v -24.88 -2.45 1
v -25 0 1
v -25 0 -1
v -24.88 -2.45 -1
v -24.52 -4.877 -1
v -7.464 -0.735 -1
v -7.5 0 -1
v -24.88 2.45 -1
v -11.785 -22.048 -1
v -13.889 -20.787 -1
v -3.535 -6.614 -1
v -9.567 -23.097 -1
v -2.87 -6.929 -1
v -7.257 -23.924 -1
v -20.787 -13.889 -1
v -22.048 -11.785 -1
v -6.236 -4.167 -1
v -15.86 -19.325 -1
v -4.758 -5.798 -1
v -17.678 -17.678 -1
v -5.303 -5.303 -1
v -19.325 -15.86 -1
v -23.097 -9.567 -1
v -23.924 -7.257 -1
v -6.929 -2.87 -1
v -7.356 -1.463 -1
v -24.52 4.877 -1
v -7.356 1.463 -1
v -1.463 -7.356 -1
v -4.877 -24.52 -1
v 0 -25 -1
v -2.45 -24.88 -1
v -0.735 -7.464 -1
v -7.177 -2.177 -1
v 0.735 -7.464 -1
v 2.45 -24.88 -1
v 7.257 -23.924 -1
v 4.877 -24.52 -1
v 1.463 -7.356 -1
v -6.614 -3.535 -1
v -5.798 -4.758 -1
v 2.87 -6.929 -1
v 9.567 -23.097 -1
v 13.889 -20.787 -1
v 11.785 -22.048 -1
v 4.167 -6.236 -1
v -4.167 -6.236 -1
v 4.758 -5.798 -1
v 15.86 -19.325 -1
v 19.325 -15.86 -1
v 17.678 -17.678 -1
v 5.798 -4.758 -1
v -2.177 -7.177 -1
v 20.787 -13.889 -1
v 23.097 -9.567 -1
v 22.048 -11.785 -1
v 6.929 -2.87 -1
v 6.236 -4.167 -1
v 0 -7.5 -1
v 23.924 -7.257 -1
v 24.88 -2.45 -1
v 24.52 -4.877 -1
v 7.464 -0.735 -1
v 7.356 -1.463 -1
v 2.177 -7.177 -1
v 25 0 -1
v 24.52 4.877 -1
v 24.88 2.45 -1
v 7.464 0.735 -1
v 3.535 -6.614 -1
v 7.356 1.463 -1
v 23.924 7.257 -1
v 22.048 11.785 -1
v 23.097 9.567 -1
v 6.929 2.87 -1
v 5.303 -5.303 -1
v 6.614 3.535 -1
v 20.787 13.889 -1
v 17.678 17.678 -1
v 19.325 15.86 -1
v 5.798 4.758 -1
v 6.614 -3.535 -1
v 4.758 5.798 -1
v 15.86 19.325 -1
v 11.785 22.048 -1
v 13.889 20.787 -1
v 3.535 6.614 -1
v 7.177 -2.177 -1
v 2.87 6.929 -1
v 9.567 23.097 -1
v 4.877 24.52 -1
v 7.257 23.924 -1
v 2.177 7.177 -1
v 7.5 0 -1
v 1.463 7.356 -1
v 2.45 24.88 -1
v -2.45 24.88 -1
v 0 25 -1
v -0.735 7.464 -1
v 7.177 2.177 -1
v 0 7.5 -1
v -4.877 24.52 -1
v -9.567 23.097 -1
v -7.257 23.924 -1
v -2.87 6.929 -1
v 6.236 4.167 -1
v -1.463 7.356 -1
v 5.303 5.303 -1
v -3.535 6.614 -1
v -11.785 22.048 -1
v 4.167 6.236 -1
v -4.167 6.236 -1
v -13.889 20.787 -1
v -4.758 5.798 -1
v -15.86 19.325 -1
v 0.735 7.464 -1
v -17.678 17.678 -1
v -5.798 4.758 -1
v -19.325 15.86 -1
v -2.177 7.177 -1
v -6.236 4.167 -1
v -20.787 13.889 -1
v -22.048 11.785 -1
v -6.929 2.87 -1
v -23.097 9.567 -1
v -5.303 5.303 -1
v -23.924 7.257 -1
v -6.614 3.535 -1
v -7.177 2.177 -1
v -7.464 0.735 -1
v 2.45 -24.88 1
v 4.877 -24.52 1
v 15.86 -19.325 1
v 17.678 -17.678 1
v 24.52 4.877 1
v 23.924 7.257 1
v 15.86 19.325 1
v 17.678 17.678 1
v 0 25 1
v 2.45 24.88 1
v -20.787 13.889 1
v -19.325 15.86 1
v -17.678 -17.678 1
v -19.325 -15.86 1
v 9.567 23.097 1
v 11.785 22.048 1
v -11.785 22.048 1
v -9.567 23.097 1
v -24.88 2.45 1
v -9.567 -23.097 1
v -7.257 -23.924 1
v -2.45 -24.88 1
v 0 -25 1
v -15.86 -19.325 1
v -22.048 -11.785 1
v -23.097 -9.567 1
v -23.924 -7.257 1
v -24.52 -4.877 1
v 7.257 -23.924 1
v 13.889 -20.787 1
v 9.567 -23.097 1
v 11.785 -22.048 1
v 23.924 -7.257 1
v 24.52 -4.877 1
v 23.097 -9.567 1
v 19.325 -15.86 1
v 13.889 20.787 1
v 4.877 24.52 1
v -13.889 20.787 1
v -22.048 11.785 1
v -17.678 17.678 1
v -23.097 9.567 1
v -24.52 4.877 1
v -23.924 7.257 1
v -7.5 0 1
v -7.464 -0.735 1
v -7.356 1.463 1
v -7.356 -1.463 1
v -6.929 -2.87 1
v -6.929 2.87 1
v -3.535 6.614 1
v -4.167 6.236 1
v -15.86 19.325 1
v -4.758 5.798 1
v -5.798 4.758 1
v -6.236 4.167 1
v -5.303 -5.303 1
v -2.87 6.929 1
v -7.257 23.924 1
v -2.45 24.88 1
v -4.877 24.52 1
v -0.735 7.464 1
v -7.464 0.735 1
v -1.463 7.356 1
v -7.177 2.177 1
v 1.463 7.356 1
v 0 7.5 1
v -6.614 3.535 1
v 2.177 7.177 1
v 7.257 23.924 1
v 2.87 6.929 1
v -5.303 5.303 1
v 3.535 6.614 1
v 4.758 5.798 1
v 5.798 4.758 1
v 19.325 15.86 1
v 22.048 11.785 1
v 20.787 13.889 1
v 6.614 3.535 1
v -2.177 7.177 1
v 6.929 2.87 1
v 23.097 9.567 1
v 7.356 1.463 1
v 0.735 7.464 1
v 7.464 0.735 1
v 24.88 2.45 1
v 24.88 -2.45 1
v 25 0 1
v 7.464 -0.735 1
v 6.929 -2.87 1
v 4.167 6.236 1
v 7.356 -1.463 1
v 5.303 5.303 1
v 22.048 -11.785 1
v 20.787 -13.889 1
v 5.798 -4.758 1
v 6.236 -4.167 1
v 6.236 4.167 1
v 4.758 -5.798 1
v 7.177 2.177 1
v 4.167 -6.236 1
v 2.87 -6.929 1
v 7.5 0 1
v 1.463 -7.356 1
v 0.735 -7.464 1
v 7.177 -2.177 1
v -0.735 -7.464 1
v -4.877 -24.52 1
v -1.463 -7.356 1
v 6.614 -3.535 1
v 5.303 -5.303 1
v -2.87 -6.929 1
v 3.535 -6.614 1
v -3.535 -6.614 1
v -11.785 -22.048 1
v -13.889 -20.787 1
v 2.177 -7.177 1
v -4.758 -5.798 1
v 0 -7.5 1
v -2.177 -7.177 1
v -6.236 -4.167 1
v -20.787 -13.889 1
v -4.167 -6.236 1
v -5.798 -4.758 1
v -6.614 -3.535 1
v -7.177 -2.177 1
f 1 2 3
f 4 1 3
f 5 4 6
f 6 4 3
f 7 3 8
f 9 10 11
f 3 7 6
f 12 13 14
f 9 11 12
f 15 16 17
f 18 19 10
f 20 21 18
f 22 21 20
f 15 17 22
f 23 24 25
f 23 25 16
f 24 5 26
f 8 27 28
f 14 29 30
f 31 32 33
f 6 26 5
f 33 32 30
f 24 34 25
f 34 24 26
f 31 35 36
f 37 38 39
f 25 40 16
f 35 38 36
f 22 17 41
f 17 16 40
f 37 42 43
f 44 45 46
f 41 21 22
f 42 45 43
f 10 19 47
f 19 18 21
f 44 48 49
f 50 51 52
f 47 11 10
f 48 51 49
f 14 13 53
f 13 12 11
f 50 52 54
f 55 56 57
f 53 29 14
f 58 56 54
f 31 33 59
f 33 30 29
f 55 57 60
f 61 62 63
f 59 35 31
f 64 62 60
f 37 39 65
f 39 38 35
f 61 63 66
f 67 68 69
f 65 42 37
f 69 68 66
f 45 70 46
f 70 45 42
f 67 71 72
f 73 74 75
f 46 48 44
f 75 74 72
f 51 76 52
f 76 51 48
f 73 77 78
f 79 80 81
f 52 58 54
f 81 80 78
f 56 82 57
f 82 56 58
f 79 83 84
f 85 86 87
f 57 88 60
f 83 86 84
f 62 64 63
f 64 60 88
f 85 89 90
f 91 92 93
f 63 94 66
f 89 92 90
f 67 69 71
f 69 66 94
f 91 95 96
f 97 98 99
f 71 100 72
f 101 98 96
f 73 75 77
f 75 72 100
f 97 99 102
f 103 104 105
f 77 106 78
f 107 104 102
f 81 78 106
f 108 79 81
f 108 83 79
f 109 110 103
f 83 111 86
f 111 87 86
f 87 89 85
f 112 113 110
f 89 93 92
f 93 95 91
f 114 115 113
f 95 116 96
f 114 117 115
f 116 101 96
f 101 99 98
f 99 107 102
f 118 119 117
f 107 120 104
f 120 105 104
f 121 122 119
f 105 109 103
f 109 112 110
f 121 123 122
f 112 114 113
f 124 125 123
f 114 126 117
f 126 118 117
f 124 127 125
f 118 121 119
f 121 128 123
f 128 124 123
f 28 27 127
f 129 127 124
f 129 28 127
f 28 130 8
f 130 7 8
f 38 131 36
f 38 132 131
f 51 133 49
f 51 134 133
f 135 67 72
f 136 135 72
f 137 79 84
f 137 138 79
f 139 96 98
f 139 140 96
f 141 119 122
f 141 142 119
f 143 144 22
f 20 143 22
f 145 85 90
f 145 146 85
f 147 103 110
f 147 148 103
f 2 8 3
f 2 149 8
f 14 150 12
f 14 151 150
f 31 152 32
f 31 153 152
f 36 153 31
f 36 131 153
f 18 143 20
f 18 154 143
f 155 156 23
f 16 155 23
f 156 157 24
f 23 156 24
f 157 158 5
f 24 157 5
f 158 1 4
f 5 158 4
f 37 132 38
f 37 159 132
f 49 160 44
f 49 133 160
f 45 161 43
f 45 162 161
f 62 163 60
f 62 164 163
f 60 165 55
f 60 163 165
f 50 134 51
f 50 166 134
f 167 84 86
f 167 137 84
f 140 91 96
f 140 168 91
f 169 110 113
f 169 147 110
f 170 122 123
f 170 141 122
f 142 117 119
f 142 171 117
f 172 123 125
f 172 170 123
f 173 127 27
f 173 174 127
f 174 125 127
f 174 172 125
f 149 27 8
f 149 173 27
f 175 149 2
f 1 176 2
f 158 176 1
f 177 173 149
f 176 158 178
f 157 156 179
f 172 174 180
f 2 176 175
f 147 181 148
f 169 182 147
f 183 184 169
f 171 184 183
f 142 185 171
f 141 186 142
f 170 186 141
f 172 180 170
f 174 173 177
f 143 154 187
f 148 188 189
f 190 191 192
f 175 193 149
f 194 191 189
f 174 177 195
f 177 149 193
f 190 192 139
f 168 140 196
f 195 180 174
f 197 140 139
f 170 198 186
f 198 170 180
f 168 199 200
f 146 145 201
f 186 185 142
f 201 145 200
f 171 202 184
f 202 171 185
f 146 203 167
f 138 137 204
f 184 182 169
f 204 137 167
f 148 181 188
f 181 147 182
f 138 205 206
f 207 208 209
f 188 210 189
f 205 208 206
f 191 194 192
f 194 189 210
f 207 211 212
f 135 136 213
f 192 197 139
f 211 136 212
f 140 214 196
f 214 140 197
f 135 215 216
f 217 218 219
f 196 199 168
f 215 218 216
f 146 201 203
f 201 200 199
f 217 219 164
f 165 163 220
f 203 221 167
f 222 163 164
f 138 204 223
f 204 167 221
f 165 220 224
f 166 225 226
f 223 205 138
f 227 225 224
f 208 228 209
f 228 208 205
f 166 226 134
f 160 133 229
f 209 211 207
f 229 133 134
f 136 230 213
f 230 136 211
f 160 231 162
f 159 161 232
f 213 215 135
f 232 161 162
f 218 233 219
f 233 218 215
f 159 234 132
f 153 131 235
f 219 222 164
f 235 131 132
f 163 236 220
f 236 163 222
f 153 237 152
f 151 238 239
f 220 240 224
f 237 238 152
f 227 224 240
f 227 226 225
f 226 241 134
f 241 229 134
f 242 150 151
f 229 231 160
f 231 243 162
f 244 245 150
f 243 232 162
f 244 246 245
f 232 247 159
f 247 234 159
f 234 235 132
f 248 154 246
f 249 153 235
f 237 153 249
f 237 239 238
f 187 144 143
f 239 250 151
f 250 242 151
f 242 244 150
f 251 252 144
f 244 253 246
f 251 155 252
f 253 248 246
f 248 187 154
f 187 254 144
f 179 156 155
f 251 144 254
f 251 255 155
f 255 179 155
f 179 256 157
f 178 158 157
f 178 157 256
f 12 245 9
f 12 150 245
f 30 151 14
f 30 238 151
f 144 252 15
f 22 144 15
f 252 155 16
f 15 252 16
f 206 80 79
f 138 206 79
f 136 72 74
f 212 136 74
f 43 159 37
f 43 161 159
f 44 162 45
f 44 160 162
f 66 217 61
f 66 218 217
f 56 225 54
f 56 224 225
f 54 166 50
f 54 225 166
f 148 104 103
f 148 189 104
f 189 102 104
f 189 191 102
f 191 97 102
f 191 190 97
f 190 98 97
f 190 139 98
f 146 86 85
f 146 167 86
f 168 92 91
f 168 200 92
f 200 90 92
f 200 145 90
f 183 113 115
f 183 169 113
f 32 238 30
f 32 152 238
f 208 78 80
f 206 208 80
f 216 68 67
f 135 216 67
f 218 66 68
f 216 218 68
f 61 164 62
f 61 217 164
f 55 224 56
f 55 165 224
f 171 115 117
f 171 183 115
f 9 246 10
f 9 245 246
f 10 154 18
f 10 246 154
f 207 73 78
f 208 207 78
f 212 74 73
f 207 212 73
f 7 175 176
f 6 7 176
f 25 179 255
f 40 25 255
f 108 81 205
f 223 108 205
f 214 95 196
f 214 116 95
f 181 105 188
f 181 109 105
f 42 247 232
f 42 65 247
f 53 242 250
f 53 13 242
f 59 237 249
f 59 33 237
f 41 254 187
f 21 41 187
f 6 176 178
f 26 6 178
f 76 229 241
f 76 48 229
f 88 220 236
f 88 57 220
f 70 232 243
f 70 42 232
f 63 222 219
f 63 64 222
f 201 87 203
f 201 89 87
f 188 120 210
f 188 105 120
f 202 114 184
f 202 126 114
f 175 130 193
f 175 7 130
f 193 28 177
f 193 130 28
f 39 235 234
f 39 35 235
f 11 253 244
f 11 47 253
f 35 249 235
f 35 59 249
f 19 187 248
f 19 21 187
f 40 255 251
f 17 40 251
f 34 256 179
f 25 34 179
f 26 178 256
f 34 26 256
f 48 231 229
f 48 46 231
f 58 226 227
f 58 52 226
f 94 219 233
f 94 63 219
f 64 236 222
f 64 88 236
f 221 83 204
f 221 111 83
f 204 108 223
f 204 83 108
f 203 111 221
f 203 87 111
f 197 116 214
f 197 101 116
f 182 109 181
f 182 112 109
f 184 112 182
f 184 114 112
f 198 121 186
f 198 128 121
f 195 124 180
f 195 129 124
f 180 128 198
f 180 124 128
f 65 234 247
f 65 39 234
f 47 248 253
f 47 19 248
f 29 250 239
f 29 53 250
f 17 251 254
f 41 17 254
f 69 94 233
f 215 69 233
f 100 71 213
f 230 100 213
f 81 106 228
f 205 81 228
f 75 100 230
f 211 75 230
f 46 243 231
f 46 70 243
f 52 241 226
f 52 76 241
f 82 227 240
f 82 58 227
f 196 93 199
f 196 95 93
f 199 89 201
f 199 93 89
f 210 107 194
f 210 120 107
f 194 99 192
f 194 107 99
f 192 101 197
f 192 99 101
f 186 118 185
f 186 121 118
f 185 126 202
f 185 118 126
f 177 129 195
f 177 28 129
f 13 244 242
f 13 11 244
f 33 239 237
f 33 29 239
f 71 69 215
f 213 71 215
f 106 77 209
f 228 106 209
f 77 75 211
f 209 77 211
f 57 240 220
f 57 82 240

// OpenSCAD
// file: constants.scad
$fn = 64;

infinity = 10000;

tolerance = 0.1;

disc_diameter = 50;
disc_internal_diameter = 15;
disc_thickness = 2;
disc_radial_gap = 1;
disc_number = 4;
disc_gap = 1;

nozzle_cone_length = 10;
nozzle_length = 30;
nozzle_thickness = 1;
nozzle_pipe_diameter = 6;

shell_thickness = 3;
shell_bolt_diameter = 4;

shell_exhaust_diameter = disc_internal_diameter + 3;
shell_height = disc_number * (disc_thickness + disc_gap) + disc_gap + shell_thickness;
shell_diameter = disc_diameter + disc_radial_gap * 2 + shell_thickness;
shell_internal_diameter = disc_diameter + disc_radial_gap;
shell_bolt_extension_diameter = shell_bolt_diameter + shell_thickness * 2;

nozzle_internal_diameter = nozzle_pipe_diameter - nozzle_thickness * 2;
nozzle_cone_diameter_min = 1;
// main file
include <constants.scad>

module disc() {
  difference() {
    cylinder(h = disc_thickness, d = disc_diameter, center = true); 

    cylinder(h = disc_thickness + tolerance, d = disc_internal_diameter, center = true);
  }
}

disc();
